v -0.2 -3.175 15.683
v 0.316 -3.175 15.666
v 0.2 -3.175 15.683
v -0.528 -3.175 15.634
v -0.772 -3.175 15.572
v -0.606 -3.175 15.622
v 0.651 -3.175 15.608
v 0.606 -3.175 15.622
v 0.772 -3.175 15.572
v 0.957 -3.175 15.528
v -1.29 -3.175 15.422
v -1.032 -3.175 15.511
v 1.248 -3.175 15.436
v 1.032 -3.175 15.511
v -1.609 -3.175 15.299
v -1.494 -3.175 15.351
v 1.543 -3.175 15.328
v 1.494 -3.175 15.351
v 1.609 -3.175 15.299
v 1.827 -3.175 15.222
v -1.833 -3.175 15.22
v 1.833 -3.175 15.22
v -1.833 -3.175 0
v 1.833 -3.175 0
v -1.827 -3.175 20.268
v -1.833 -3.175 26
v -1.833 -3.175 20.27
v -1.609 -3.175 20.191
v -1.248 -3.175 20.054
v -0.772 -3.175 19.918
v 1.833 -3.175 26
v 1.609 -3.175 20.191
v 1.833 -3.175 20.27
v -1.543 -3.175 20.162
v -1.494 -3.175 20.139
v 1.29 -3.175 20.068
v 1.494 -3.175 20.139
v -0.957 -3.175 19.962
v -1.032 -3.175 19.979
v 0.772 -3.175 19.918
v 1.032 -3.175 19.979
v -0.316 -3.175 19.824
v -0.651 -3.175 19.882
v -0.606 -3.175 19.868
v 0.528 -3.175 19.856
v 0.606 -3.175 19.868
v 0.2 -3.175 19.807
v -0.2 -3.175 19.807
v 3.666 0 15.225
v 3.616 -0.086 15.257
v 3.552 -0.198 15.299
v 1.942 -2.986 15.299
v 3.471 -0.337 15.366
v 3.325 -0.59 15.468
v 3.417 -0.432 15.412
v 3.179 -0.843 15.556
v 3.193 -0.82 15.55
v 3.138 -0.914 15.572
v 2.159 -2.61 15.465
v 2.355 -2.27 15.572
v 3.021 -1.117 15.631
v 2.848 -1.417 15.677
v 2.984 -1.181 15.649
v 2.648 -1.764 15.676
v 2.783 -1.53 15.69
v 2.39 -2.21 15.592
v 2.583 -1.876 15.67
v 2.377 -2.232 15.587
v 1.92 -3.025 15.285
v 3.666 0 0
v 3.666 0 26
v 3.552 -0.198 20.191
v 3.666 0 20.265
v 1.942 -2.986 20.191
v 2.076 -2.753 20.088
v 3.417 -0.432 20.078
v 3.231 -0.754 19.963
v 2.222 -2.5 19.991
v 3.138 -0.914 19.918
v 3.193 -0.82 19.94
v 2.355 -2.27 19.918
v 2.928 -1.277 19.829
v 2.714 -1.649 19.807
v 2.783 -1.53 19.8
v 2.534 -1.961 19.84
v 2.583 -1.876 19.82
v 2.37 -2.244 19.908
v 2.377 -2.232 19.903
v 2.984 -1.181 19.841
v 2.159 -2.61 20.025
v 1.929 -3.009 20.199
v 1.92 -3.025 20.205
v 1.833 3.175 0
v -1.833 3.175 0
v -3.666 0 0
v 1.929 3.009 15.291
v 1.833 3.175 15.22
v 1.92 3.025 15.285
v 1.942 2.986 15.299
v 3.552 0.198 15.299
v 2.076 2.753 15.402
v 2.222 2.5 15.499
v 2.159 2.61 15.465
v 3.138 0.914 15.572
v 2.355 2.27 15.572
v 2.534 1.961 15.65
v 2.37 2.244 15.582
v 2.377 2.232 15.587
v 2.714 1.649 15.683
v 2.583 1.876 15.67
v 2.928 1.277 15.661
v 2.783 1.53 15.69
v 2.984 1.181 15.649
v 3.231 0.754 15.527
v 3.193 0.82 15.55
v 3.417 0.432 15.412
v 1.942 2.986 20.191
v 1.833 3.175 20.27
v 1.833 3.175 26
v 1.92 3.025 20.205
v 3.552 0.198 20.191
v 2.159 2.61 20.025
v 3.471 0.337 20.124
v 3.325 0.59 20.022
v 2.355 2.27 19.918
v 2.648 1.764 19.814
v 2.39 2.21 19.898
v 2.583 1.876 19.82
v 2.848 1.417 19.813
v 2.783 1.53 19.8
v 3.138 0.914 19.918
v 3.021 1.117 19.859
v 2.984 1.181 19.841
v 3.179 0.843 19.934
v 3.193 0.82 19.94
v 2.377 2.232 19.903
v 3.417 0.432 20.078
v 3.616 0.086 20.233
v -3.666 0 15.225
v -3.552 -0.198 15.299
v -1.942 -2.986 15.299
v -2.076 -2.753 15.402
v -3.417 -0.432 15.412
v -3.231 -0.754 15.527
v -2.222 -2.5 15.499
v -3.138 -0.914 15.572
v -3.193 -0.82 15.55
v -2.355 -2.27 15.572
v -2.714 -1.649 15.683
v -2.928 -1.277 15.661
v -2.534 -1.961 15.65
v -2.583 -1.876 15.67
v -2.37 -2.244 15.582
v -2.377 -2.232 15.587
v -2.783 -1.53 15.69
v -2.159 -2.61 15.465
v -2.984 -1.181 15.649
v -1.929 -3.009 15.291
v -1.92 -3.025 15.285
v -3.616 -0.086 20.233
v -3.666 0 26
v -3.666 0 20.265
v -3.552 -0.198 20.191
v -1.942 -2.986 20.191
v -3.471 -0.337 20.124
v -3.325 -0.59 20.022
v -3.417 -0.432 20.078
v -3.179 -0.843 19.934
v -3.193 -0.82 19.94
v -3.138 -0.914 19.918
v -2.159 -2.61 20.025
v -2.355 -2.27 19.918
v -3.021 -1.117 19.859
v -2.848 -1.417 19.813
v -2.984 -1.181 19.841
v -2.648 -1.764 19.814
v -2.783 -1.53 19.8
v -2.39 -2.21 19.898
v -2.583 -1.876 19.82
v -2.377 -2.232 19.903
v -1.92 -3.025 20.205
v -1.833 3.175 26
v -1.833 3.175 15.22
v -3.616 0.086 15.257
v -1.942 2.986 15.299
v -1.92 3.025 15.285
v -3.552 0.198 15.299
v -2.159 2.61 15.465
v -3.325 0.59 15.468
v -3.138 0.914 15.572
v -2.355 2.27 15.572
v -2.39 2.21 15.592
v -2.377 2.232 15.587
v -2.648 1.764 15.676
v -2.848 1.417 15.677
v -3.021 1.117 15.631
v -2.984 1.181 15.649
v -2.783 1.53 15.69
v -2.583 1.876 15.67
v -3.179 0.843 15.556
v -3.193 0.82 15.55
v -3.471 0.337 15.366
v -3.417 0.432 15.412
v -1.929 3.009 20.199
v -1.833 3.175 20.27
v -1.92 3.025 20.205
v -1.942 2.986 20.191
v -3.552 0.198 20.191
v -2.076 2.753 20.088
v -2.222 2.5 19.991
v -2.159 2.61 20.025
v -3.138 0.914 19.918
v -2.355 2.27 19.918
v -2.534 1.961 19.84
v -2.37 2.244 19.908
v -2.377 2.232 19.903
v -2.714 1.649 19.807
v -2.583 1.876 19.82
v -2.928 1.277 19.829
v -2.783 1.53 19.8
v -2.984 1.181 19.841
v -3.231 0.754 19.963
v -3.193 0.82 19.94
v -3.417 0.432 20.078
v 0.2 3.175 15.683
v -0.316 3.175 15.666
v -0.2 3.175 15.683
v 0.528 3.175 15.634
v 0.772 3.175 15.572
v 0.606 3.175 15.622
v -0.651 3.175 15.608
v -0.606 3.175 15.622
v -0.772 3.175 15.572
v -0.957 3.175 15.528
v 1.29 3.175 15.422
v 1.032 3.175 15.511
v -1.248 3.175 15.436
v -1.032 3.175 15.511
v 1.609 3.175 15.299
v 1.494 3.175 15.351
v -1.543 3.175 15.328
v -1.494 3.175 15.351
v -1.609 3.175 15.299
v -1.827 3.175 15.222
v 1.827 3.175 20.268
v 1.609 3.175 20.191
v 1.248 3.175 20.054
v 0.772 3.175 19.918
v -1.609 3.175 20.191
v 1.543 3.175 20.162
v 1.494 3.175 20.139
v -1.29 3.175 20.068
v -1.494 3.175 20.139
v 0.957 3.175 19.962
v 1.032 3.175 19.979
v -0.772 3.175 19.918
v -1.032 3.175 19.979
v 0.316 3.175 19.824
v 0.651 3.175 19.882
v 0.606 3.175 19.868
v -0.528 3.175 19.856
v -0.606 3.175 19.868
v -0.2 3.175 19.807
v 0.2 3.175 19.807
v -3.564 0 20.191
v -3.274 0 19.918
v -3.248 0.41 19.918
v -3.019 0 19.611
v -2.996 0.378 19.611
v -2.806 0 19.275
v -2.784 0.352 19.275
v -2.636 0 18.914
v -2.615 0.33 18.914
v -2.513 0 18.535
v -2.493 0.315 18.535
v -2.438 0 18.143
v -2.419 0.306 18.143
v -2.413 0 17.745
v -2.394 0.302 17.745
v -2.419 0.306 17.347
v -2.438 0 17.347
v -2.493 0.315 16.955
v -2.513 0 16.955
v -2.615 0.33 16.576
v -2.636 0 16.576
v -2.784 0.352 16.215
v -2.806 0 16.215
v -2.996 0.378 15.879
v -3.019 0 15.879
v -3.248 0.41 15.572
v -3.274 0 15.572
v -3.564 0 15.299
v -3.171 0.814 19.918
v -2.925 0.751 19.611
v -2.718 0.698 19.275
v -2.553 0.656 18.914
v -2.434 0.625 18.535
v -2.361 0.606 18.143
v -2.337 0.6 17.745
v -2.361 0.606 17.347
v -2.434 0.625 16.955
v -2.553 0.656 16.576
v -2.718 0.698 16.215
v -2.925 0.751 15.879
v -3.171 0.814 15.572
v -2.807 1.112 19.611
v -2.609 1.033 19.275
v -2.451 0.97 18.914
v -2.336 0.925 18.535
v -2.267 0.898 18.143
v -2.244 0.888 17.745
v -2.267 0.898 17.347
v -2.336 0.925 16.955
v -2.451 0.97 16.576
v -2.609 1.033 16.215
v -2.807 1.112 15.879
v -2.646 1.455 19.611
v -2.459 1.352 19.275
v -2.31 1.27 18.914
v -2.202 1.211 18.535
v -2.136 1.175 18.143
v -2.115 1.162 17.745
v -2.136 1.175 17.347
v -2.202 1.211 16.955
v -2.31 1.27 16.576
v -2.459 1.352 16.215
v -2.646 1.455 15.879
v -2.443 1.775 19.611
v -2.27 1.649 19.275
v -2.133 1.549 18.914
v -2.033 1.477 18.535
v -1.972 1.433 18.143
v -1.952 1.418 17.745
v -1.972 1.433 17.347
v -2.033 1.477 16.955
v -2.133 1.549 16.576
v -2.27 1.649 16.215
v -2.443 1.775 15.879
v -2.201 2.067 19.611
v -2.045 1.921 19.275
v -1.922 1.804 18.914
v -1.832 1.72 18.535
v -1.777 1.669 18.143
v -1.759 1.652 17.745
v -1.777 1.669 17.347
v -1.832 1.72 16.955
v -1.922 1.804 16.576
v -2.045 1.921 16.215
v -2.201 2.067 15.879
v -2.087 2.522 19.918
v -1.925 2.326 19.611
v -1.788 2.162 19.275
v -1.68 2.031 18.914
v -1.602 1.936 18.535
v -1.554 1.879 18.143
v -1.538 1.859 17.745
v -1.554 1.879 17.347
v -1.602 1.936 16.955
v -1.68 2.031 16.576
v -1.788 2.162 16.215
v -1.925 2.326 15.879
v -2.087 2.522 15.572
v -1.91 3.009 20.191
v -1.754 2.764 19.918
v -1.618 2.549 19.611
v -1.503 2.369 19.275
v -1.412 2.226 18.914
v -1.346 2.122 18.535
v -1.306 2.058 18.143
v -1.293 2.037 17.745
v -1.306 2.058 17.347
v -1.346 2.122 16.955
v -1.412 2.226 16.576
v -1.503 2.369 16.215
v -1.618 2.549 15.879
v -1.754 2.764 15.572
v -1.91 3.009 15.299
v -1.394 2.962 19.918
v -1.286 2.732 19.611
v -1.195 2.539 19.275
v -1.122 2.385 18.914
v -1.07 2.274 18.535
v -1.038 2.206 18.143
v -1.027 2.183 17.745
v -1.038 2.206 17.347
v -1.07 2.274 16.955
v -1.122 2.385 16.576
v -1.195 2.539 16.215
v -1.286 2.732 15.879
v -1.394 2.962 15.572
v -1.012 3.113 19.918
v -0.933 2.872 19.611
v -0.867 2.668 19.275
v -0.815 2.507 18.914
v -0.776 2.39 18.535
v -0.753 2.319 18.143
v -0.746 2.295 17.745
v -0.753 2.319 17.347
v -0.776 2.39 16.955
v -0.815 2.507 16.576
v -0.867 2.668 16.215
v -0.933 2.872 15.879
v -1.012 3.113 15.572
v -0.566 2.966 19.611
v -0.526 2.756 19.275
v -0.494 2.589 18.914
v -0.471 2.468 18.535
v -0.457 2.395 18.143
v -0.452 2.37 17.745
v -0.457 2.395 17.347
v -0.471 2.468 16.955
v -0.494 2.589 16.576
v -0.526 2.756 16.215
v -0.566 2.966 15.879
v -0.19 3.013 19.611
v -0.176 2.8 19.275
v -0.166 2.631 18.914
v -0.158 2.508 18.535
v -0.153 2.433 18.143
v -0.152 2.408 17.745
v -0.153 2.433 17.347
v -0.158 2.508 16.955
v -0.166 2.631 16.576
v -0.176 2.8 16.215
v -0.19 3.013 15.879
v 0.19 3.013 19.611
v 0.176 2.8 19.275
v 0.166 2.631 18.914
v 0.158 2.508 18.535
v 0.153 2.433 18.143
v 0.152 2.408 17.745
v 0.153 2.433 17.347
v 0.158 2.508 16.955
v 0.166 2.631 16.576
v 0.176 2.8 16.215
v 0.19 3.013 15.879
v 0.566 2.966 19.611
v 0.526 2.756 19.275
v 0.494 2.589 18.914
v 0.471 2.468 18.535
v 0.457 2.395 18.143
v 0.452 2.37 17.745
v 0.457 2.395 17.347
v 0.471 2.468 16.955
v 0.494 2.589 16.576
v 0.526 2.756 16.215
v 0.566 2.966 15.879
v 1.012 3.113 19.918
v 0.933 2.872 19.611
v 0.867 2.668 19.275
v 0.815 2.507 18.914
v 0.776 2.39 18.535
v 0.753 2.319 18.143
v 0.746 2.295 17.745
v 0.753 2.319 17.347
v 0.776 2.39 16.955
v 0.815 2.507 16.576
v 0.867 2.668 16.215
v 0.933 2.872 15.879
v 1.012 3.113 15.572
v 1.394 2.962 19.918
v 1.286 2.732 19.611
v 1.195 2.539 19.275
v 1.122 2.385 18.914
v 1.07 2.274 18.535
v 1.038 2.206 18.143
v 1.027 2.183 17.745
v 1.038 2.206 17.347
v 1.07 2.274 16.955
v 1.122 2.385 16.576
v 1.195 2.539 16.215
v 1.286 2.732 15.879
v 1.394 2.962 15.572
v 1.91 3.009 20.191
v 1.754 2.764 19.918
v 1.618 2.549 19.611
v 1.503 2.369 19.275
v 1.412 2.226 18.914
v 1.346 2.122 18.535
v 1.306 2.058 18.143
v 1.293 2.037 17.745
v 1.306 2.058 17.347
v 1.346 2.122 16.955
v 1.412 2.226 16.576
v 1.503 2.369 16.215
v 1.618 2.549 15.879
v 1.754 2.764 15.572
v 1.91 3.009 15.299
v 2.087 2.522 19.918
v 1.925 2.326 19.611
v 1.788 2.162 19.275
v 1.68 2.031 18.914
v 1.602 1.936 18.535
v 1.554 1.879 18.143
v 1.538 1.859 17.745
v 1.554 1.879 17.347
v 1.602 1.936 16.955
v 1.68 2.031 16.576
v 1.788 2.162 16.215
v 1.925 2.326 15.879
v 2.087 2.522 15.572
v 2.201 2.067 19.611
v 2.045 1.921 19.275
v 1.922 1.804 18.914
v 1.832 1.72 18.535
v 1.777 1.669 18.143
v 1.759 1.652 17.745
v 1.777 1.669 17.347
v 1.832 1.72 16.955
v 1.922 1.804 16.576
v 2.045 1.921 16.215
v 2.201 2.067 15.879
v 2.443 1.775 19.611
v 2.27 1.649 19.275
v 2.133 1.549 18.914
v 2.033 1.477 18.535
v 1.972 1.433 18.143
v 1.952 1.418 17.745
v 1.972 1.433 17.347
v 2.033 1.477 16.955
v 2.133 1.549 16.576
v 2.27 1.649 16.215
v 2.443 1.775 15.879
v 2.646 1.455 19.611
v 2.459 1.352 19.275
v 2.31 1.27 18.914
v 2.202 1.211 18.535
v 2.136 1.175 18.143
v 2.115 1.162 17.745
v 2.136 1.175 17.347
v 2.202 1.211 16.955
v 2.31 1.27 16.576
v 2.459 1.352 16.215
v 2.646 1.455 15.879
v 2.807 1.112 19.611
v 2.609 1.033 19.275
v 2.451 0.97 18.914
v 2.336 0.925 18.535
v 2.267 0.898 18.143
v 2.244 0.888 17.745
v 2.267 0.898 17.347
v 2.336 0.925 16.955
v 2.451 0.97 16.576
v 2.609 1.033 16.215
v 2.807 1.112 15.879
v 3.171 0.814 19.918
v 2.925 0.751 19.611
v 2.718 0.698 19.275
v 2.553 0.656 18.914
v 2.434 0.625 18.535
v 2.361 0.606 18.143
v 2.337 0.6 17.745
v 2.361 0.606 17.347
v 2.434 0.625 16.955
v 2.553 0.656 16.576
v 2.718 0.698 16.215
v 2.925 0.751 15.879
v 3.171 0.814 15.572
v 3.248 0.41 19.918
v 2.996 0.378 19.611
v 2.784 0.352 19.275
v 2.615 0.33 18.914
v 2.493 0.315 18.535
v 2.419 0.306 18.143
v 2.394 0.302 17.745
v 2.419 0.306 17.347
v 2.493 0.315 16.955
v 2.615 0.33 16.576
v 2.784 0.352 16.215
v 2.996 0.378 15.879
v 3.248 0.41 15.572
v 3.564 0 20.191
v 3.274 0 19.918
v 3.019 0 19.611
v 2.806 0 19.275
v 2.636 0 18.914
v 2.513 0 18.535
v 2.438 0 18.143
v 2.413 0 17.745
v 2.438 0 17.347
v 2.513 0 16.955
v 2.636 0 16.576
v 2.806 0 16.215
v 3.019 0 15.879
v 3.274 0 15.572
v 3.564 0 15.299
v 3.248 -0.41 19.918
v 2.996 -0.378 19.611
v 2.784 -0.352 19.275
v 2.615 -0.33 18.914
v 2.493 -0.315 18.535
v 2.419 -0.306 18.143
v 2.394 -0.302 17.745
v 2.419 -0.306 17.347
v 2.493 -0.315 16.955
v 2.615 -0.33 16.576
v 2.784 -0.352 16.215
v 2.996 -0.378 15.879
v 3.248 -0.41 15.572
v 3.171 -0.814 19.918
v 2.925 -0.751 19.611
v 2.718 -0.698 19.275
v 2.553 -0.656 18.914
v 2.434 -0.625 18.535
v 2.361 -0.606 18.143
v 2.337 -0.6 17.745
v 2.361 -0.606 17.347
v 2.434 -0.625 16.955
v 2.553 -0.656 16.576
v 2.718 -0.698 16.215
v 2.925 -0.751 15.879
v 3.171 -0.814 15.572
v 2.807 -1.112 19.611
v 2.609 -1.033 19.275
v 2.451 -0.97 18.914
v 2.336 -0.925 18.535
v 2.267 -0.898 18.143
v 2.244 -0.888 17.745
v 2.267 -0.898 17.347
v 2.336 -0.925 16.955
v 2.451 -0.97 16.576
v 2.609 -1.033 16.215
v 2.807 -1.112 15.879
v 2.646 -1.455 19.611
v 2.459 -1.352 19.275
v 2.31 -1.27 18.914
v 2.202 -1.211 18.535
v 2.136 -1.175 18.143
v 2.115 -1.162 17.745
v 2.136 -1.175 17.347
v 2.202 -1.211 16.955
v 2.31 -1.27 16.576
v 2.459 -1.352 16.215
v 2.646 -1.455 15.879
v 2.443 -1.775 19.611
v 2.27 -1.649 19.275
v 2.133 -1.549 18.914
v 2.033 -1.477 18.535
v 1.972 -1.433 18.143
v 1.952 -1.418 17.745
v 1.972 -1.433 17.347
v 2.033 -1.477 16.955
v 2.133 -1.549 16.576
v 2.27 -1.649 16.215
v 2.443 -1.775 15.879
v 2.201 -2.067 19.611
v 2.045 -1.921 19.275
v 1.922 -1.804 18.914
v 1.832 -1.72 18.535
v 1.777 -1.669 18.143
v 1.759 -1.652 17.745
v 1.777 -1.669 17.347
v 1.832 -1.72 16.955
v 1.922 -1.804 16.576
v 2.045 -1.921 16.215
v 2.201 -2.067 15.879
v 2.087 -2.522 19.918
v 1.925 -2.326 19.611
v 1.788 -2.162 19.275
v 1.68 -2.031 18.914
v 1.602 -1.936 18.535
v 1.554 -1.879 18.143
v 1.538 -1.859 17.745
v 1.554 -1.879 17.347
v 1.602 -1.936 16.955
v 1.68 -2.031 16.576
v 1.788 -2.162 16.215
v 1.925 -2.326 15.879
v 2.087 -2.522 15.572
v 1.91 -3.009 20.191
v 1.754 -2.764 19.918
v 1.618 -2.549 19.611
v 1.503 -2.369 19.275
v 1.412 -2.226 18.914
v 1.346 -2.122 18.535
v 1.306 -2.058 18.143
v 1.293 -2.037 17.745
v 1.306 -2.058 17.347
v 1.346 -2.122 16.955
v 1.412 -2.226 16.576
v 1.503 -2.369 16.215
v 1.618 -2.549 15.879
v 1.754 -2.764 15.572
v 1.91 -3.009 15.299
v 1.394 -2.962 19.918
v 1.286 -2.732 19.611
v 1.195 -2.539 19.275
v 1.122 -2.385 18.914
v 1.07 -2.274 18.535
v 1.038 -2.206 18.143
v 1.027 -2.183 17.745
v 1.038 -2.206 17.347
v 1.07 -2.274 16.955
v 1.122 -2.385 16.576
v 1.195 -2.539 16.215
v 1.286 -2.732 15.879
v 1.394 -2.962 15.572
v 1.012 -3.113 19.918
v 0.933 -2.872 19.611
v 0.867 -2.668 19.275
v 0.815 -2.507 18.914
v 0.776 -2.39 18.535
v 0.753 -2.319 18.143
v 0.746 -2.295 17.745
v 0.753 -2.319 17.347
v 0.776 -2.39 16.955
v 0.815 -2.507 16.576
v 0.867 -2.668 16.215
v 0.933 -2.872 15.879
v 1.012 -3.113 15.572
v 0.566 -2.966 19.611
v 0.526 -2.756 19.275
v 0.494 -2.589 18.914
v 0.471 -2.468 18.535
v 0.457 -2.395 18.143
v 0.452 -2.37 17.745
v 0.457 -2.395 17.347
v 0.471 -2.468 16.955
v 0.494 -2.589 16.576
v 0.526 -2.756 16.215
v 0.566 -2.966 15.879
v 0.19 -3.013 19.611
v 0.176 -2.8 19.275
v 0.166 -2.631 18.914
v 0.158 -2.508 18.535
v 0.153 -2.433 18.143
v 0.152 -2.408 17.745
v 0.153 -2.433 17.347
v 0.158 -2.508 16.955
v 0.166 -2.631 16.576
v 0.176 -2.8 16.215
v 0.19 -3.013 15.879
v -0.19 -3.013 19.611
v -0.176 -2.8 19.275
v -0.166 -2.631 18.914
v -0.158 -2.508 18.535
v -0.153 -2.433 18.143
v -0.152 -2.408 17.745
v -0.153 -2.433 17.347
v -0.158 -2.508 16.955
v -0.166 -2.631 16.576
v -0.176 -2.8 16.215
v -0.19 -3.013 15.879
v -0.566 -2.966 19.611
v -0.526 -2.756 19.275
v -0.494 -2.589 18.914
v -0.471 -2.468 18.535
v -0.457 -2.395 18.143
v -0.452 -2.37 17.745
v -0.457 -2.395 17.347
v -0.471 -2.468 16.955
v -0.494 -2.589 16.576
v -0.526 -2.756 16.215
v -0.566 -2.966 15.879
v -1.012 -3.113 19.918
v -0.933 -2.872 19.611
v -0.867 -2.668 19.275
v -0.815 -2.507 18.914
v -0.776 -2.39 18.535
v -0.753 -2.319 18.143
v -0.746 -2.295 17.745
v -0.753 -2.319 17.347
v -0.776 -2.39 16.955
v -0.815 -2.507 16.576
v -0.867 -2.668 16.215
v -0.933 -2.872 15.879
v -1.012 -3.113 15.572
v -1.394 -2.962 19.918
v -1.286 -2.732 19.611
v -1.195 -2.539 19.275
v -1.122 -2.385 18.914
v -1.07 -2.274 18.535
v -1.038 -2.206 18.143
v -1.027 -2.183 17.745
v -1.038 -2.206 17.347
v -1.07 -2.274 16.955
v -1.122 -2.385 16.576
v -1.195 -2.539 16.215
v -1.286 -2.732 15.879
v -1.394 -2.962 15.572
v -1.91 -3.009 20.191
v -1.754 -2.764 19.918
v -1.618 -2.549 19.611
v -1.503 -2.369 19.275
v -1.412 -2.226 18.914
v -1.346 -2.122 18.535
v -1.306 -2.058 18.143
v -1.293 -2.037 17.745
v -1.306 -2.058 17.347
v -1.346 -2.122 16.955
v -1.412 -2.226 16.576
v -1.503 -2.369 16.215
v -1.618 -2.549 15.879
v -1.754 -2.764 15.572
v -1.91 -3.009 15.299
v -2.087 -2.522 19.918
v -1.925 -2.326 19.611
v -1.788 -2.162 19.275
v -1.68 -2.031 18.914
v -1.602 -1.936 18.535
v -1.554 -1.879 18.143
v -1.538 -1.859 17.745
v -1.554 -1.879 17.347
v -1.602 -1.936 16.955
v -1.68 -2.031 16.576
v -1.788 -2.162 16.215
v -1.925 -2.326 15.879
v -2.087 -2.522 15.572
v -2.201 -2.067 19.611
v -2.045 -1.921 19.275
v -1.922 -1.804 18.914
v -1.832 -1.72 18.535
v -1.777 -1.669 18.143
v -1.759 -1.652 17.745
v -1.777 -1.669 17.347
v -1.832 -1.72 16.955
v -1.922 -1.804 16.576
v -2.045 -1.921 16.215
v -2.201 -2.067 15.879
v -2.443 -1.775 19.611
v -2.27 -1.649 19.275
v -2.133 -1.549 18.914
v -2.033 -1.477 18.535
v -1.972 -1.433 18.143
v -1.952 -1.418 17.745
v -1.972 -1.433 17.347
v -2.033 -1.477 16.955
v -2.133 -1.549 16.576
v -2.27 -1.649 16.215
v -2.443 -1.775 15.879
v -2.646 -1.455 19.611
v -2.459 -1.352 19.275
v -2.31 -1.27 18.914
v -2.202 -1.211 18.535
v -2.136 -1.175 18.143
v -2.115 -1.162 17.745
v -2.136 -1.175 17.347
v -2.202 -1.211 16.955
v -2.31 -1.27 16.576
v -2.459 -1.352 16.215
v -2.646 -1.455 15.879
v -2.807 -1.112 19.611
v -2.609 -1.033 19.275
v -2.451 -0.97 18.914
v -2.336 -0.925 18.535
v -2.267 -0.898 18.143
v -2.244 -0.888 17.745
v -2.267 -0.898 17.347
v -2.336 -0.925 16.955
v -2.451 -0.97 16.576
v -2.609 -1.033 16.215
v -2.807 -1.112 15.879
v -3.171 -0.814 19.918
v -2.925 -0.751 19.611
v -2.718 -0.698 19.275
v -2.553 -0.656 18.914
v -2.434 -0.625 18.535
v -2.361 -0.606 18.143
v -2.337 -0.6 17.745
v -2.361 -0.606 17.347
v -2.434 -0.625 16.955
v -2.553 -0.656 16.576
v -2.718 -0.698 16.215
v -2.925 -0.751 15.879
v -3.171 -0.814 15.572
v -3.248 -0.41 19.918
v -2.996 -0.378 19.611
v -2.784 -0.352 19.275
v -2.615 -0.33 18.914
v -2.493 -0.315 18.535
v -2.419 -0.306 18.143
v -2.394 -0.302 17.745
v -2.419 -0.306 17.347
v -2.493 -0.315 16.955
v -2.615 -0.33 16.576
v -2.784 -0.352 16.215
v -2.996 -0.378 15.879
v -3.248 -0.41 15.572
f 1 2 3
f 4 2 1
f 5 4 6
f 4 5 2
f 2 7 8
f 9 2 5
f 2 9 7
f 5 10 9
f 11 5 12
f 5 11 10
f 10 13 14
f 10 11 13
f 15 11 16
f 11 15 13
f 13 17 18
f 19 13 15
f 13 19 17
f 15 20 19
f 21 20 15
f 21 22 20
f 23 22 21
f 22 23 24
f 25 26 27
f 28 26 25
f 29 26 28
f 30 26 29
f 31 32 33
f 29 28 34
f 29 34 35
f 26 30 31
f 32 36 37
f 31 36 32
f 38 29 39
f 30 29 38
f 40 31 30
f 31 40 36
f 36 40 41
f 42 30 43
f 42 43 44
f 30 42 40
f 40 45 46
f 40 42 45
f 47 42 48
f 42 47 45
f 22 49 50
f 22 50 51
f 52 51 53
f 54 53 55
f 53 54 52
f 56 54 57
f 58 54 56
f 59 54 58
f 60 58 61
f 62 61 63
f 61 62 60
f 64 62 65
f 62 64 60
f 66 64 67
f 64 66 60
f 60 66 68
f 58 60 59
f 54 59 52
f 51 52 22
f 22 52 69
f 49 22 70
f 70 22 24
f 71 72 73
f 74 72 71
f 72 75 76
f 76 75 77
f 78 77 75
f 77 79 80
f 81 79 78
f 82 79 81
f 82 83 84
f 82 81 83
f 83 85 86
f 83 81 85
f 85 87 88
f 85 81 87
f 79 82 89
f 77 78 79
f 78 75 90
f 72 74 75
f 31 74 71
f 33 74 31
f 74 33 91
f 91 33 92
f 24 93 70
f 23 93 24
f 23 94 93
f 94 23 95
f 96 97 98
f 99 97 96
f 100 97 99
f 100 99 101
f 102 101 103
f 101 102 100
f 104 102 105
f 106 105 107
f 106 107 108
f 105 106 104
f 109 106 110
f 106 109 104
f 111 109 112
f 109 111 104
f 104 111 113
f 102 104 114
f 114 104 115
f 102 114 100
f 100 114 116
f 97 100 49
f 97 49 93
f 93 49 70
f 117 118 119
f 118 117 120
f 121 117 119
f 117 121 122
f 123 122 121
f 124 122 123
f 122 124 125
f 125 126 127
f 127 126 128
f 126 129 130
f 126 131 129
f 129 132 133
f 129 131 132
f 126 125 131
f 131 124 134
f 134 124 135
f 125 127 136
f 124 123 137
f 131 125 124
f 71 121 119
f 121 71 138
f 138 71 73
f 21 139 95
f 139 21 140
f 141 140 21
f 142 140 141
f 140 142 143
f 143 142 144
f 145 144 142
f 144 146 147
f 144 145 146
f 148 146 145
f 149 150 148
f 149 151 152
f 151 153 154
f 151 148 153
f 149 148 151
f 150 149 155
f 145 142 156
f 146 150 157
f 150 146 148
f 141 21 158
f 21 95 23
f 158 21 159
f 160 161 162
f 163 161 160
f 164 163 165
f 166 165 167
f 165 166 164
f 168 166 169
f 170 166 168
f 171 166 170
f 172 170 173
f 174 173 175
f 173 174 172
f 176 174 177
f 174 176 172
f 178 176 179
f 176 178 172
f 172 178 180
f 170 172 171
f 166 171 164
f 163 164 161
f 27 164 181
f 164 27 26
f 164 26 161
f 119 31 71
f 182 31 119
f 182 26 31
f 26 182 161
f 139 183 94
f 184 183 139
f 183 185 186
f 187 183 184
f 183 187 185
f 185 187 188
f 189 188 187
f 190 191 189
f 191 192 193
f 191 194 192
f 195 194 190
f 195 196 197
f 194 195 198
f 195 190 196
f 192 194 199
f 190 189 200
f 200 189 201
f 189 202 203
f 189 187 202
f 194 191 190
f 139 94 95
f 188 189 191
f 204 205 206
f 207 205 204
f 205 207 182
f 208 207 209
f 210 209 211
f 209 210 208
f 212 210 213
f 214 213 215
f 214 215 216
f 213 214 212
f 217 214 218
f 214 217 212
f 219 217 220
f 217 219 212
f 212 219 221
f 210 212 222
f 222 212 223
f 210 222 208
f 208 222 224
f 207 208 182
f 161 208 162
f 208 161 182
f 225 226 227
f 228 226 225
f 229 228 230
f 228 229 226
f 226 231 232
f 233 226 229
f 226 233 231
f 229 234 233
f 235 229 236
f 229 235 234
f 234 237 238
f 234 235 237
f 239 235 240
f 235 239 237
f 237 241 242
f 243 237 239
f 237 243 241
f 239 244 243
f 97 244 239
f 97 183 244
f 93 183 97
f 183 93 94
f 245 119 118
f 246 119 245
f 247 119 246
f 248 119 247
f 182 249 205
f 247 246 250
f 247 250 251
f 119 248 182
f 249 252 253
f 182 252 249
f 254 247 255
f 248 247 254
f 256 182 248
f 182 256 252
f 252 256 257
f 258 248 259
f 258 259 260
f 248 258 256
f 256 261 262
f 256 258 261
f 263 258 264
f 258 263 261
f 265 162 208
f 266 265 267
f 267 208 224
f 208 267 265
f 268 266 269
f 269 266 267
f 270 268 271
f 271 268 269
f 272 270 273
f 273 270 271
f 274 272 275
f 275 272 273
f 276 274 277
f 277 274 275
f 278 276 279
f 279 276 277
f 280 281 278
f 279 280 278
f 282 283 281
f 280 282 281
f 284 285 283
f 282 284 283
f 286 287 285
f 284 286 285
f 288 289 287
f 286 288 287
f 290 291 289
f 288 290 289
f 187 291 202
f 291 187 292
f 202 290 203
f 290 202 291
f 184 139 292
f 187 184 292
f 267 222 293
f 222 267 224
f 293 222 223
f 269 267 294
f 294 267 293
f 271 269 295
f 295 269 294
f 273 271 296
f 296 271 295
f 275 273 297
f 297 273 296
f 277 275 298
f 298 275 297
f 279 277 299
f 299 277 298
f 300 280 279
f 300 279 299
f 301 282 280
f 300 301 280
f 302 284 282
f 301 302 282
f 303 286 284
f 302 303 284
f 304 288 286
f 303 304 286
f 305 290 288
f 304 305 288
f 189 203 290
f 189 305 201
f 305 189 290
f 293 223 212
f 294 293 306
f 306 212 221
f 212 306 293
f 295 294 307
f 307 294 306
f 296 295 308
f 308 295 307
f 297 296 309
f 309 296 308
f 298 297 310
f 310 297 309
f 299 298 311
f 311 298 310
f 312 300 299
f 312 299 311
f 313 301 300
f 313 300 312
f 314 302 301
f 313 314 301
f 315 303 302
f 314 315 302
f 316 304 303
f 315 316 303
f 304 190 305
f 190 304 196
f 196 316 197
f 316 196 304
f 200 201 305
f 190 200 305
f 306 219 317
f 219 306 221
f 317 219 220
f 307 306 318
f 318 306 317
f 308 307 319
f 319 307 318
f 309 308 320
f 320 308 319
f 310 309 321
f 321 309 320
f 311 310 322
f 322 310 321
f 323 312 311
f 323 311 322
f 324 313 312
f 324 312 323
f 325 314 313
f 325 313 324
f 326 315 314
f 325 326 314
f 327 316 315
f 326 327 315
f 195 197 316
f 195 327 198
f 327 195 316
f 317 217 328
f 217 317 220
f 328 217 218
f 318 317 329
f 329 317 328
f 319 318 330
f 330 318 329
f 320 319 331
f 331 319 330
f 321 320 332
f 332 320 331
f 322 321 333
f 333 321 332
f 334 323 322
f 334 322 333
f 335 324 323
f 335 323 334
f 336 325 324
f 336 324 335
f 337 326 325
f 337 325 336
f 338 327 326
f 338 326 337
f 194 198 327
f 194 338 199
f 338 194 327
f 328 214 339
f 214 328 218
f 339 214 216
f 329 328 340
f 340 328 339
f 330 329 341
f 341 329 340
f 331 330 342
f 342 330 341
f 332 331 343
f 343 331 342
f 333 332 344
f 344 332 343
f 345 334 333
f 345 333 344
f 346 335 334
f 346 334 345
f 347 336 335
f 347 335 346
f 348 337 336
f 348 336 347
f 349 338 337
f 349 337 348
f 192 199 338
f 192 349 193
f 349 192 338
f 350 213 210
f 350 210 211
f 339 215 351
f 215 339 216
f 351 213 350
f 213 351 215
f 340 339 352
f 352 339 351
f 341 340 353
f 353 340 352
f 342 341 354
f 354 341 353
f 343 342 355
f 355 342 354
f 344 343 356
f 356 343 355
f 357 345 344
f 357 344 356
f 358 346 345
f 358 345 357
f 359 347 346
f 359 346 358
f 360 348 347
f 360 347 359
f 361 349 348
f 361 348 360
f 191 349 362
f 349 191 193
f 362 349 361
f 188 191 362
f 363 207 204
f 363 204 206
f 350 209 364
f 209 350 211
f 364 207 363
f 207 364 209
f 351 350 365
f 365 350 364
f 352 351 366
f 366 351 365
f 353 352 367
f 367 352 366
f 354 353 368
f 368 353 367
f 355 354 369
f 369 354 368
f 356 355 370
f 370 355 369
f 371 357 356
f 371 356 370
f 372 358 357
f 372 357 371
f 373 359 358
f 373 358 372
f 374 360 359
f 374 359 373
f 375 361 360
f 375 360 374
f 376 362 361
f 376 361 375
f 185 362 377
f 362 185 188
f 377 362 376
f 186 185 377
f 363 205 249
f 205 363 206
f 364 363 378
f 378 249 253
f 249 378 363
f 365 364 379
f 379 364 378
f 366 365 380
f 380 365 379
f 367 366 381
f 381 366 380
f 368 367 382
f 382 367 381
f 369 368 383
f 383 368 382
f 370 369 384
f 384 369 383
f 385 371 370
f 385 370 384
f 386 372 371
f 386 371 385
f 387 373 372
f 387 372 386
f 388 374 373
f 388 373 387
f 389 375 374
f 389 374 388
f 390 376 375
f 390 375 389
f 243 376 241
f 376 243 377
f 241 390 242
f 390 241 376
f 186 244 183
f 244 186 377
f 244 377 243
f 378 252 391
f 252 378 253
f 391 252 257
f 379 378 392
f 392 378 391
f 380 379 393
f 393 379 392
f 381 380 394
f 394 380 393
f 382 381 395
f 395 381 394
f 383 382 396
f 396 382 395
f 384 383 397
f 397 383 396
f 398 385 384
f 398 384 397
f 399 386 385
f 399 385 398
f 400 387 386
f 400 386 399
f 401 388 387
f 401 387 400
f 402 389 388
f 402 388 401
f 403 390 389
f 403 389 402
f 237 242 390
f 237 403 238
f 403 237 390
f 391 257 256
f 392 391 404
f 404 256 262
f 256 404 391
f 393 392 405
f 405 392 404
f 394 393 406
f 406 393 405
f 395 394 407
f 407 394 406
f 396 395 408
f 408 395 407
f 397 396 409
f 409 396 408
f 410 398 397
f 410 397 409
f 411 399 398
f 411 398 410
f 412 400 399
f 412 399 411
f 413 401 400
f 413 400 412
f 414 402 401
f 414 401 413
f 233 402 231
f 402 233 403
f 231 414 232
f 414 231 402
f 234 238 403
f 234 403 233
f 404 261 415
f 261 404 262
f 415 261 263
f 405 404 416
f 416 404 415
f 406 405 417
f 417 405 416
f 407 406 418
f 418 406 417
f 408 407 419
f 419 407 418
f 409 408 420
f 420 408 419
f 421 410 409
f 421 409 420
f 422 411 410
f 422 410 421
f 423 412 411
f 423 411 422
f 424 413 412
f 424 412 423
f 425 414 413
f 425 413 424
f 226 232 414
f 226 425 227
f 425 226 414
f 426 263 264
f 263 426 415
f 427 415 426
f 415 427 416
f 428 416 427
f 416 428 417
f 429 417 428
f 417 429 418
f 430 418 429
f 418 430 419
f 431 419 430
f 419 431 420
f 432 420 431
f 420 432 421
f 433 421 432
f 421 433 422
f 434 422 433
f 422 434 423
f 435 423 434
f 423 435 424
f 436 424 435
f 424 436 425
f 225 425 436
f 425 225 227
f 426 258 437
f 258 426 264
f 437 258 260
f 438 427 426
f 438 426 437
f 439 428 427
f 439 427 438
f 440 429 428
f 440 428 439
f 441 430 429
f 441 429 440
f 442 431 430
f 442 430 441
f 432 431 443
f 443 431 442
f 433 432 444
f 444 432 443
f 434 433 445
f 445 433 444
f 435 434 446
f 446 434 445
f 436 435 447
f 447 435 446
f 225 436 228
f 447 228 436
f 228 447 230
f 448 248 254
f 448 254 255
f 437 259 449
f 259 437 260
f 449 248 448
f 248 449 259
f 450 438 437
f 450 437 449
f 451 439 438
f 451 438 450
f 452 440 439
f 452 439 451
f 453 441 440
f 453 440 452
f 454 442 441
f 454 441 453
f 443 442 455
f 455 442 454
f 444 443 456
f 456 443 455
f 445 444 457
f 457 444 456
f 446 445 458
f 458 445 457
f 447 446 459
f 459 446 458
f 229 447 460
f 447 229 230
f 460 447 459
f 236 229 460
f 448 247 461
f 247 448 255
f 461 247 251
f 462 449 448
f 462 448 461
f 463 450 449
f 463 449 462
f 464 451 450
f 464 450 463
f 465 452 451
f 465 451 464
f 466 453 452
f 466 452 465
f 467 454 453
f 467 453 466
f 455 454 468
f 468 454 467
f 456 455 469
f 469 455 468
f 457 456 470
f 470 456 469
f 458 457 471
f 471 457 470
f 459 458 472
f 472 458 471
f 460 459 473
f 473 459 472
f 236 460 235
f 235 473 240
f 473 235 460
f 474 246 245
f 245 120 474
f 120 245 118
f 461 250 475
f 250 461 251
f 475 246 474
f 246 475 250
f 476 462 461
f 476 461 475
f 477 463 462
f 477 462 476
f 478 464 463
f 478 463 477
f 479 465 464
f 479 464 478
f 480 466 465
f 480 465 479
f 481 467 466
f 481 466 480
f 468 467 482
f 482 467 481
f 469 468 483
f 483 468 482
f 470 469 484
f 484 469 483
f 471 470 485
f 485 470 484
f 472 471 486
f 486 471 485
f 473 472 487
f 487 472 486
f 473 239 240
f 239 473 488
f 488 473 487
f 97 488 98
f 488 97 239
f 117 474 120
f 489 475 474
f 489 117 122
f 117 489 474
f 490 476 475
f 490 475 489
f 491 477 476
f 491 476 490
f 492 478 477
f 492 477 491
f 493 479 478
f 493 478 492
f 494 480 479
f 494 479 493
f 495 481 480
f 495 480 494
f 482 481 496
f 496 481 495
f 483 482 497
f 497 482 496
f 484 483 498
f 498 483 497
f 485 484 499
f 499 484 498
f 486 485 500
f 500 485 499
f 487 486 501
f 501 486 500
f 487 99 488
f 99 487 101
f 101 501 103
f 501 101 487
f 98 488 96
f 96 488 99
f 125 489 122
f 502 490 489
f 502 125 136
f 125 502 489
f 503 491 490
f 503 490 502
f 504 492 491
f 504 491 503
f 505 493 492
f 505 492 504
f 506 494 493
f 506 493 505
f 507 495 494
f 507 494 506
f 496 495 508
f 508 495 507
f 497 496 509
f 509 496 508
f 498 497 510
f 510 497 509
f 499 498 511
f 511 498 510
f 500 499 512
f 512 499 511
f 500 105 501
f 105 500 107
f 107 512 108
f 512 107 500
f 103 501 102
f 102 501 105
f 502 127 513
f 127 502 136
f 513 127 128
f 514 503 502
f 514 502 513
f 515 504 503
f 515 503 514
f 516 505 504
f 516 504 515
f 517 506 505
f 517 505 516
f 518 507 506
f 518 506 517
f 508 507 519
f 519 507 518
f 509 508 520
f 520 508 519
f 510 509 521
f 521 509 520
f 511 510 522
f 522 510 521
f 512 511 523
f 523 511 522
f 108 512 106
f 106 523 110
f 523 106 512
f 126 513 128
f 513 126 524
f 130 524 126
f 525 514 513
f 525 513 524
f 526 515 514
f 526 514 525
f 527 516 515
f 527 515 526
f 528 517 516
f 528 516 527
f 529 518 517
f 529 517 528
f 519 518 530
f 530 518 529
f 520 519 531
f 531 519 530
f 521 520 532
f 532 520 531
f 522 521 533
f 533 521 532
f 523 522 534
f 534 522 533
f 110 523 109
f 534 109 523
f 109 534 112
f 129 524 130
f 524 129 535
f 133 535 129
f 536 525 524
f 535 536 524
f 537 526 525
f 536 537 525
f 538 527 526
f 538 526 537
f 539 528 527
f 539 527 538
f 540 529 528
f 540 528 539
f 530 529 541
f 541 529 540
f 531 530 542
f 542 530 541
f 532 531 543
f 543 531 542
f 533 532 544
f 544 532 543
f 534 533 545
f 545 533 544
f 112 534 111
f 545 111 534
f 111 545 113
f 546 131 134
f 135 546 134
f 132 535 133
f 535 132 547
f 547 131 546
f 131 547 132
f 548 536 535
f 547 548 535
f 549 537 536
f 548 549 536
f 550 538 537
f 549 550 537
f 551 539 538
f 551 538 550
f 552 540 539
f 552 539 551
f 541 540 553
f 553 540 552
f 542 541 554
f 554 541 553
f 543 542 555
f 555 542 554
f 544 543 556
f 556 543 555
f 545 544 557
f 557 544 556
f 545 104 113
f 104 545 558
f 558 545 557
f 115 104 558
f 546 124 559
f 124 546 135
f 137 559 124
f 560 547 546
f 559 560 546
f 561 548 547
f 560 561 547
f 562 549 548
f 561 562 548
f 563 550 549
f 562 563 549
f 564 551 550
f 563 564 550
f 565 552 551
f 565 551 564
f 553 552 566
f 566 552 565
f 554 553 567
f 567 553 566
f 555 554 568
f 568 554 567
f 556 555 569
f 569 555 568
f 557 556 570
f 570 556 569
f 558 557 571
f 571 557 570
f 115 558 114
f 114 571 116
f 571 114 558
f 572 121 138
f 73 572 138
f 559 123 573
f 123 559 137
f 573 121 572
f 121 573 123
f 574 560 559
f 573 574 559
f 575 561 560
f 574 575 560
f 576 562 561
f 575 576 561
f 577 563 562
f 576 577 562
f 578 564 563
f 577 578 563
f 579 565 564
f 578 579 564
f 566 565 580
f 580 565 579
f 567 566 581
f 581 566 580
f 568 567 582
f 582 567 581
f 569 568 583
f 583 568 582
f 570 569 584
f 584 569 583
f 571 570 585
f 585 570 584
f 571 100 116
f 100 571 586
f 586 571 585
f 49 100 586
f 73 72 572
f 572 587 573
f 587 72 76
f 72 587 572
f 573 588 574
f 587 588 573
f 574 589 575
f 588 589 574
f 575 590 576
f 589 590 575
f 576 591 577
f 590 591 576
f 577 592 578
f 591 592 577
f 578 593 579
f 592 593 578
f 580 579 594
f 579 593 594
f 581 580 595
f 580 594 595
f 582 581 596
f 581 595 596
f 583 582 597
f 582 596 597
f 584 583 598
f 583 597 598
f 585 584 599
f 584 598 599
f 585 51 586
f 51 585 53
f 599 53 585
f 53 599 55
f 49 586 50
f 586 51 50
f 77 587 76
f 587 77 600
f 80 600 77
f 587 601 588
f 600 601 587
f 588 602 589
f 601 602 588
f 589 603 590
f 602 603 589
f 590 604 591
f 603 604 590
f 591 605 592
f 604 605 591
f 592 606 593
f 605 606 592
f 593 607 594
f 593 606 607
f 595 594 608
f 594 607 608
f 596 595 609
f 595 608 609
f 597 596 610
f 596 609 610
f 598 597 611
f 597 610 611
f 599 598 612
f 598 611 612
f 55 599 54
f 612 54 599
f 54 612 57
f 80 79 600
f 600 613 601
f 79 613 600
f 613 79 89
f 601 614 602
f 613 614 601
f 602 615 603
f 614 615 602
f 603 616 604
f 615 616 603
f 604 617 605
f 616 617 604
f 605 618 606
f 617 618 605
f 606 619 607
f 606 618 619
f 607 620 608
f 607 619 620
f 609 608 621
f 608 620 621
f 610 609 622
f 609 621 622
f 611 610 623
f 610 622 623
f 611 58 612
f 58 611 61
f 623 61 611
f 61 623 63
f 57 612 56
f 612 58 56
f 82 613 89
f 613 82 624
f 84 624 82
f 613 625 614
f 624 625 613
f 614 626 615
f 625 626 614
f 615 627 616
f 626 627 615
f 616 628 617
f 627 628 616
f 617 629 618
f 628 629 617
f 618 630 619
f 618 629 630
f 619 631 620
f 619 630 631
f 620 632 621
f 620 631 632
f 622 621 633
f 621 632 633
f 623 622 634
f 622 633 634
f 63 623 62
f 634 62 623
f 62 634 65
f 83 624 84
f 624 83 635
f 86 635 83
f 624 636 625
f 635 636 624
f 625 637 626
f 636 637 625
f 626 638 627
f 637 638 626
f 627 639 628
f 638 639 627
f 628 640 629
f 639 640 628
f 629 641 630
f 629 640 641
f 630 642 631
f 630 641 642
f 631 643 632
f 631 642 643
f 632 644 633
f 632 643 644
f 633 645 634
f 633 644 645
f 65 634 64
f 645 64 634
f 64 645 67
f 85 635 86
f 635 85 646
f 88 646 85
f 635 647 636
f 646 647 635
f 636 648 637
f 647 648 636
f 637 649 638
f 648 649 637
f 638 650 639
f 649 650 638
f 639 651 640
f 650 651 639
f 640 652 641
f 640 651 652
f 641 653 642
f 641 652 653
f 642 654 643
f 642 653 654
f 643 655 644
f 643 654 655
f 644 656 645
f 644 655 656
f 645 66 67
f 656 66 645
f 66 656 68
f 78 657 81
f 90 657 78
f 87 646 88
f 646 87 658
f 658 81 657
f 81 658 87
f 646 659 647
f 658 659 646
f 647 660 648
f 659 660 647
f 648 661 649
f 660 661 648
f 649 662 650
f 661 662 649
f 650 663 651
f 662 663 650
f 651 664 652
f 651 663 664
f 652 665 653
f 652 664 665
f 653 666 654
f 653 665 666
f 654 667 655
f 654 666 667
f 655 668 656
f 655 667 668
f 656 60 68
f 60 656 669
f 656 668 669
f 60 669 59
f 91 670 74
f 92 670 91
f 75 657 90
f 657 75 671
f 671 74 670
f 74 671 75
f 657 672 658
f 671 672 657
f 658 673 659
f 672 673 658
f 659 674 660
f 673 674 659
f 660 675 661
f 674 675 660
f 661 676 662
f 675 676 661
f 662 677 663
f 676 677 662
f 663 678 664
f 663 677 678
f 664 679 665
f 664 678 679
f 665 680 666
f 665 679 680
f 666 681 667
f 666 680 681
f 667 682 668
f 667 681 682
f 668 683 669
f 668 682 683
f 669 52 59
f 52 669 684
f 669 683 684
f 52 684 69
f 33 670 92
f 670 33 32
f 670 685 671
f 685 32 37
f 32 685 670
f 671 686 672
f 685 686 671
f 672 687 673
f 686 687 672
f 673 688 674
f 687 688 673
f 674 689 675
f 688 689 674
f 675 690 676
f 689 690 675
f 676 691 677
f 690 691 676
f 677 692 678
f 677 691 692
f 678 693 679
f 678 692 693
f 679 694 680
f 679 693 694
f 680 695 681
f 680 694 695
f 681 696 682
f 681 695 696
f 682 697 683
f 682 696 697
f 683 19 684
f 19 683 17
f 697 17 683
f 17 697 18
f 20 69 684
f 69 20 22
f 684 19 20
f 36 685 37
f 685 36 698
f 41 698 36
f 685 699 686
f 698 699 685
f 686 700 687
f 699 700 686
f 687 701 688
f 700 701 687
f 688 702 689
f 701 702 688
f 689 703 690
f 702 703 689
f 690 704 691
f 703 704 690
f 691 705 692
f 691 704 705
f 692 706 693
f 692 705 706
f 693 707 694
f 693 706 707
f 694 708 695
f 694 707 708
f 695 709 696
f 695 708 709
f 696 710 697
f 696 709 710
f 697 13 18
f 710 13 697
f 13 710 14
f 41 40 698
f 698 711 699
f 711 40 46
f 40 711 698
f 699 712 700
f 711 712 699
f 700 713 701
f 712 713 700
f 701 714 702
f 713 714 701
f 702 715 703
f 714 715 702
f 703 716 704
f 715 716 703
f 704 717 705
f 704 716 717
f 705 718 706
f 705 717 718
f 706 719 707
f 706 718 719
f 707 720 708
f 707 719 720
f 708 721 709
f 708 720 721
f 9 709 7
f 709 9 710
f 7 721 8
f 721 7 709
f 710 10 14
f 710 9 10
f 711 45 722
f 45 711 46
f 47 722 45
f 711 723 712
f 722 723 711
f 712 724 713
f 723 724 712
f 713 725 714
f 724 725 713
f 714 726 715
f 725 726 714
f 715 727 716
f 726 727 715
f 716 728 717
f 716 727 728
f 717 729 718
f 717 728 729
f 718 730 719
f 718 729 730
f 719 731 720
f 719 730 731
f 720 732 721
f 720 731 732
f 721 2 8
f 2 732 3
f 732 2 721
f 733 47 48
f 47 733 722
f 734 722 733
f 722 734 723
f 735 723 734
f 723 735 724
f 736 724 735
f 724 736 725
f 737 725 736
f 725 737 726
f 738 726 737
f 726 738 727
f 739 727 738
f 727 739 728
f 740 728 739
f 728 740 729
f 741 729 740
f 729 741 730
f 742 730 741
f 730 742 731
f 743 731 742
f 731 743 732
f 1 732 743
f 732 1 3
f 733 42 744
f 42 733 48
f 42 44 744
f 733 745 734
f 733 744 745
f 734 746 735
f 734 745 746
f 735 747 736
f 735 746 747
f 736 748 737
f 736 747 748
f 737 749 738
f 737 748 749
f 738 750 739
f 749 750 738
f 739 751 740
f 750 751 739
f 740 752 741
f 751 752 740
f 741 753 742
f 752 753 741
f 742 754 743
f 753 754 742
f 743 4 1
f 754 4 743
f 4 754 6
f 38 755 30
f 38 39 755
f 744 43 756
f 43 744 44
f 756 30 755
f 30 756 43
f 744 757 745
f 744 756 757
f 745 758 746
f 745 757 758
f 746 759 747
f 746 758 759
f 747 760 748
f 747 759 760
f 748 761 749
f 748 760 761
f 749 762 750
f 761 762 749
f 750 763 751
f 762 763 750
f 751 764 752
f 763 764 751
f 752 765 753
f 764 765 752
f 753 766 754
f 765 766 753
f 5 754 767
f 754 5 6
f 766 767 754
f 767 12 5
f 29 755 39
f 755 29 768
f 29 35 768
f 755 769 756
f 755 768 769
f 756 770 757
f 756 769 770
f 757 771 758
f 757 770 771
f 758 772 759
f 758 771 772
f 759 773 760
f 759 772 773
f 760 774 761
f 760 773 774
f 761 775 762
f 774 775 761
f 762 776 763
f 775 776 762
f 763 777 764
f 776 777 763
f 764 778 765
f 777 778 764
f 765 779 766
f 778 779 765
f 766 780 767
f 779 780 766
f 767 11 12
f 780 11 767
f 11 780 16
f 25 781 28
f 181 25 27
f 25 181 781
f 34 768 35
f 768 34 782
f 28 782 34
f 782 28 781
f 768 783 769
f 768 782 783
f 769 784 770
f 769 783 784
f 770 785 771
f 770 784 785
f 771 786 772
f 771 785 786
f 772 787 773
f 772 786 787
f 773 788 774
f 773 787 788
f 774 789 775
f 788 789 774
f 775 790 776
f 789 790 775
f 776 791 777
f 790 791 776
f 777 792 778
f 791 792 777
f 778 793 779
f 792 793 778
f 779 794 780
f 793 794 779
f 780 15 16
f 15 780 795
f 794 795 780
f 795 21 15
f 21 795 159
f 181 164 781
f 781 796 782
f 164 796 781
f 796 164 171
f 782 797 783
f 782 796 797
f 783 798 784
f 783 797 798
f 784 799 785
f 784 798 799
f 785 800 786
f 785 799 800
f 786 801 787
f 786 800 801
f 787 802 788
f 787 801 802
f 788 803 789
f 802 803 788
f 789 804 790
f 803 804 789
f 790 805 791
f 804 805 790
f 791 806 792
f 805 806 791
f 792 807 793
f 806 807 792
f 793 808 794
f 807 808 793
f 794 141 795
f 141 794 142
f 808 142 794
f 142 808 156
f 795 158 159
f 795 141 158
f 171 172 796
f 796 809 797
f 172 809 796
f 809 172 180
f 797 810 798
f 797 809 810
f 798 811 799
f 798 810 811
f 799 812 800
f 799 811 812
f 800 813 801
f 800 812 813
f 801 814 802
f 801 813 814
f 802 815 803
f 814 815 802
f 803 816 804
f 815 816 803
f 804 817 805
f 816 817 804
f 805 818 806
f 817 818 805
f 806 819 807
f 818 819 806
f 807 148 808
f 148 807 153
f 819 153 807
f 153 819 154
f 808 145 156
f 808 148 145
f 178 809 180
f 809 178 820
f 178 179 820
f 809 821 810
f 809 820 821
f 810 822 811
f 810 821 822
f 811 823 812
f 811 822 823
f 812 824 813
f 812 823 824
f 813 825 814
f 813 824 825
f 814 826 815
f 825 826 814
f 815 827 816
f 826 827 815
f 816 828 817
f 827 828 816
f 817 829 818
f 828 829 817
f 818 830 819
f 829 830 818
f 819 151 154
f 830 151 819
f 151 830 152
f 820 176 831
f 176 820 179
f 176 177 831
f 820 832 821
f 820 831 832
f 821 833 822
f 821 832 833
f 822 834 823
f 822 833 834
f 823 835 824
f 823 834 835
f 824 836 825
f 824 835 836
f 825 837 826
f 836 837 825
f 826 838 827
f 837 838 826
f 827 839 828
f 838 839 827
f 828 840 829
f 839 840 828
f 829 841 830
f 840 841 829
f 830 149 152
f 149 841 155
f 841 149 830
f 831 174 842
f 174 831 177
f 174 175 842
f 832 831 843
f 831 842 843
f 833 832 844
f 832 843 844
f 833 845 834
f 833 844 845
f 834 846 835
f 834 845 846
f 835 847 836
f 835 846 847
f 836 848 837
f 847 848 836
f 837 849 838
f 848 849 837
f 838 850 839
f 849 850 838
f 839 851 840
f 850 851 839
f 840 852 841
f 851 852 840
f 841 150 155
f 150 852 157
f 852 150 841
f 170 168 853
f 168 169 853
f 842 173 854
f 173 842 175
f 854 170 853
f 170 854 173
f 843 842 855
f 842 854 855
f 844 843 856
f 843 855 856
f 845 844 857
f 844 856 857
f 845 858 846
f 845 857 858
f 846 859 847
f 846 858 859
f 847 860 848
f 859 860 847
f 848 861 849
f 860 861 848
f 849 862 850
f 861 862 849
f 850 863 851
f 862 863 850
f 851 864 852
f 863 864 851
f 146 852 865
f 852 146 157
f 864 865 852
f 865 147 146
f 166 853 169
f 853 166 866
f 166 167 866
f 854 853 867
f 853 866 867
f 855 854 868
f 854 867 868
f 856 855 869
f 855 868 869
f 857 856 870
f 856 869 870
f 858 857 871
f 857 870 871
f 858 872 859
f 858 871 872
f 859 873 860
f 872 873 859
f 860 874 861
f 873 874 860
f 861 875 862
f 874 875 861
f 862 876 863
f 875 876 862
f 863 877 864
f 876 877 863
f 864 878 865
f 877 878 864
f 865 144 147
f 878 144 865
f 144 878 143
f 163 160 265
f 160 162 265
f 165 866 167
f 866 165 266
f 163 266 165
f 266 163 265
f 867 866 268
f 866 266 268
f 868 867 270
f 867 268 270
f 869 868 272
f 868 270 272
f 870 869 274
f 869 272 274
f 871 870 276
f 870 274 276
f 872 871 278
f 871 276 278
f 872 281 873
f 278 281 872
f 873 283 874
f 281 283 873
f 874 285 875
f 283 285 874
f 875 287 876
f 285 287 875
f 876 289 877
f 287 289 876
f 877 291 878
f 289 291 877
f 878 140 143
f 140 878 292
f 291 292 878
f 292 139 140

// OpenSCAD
$fn = 50;


difference() {
	union() {
		translate(v = [0, 0, 0]) {
			rotate(a = [0, 0, 0]) {
				difference() {
					union() {
						linear_extrude(height = 26) {
							polygon(points = [[3.6658550000, 0.0000000000], [1.8329275000, 3.1747235566], [-1.8329275000, 3.1747235566], [-3.6658550000, 0.0000000000], [-1.8329275000, -3.1747235566], [1.8329275000, -3.1747235566]]);
						}
					}
					union() {
						translate(v = [0, 0, 17.7450000000]) {
							rotate_extrude(angle = 360) {
								translate(v = [5.5880000000, 0, 0]) {
									circle(r = 3.1750000000);
								}
							}
						}
					}
				}
			}
		}
	}
	union();
}
